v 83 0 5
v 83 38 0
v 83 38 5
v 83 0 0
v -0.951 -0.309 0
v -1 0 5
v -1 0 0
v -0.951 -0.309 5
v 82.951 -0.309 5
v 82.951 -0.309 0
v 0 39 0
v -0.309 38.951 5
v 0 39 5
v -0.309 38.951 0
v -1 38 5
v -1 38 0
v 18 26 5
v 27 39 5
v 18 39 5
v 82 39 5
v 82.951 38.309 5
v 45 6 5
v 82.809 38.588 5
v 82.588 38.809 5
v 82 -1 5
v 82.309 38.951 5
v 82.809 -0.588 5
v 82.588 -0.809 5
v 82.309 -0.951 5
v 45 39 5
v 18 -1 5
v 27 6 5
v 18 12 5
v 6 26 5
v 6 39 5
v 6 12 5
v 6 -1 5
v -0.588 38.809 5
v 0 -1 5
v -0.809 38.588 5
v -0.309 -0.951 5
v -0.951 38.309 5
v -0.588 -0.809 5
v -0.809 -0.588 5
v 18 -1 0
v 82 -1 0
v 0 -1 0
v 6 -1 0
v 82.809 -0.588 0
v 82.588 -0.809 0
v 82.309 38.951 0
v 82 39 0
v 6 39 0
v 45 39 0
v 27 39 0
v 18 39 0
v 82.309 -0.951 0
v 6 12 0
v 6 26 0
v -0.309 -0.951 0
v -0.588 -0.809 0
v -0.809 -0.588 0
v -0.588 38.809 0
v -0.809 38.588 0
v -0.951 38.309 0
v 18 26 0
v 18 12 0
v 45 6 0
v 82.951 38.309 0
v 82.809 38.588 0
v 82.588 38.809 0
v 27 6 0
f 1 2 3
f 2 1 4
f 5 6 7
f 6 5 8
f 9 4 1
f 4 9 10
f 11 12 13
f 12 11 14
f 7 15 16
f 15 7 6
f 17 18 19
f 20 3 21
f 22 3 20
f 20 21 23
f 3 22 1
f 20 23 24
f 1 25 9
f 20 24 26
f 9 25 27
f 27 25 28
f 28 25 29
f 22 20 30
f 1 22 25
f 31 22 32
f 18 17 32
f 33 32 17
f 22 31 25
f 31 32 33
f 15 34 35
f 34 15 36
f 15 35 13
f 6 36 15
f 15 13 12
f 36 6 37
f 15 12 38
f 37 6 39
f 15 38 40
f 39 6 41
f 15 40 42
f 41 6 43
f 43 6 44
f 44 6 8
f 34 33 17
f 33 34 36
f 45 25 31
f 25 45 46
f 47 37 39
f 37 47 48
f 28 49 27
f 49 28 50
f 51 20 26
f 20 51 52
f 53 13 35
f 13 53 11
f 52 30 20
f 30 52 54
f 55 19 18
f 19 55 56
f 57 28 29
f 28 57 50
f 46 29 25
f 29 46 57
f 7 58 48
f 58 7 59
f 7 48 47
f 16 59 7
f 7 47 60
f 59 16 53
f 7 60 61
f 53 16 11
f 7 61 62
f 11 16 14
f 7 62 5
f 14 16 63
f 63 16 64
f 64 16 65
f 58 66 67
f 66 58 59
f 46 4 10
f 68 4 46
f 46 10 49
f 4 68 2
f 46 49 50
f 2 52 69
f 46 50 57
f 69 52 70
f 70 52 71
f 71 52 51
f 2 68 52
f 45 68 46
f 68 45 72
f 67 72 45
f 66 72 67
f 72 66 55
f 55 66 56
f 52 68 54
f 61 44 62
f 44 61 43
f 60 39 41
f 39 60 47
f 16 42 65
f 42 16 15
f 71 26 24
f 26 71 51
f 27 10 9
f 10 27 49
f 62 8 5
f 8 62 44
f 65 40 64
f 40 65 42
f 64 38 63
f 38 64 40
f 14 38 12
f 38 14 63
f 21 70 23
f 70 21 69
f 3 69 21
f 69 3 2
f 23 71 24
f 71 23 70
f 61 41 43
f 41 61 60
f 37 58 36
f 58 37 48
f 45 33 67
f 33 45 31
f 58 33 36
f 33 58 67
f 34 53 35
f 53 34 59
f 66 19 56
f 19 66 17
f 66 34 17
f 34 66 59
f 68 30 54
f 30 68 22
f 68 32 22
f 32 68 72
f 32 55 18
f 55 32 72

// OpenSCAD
$fn = 20;     // Team.Mu.Captain@gmail.com

SmoothR       = 1;
SmoothH       = 1;

length        = 2;
thickness     = 4;




difference(){
minkowski(){
    cube([(80+length),38,thickness]);
    cylinder(r=SmoothR,h=SmoothH);
}

// nooks
translate([6,-48,-3]){
    cube([(10+length),60,30]);
}
translate([6,26,-3]){
    cube([(10+length),60,30]);
}
//slot
translate([(35+length),6,-3]){
    cube([8,38,20]);
}

// clip hole
translate([(25+length),6,-3]){
    cube([11,40,20]);
}

}
